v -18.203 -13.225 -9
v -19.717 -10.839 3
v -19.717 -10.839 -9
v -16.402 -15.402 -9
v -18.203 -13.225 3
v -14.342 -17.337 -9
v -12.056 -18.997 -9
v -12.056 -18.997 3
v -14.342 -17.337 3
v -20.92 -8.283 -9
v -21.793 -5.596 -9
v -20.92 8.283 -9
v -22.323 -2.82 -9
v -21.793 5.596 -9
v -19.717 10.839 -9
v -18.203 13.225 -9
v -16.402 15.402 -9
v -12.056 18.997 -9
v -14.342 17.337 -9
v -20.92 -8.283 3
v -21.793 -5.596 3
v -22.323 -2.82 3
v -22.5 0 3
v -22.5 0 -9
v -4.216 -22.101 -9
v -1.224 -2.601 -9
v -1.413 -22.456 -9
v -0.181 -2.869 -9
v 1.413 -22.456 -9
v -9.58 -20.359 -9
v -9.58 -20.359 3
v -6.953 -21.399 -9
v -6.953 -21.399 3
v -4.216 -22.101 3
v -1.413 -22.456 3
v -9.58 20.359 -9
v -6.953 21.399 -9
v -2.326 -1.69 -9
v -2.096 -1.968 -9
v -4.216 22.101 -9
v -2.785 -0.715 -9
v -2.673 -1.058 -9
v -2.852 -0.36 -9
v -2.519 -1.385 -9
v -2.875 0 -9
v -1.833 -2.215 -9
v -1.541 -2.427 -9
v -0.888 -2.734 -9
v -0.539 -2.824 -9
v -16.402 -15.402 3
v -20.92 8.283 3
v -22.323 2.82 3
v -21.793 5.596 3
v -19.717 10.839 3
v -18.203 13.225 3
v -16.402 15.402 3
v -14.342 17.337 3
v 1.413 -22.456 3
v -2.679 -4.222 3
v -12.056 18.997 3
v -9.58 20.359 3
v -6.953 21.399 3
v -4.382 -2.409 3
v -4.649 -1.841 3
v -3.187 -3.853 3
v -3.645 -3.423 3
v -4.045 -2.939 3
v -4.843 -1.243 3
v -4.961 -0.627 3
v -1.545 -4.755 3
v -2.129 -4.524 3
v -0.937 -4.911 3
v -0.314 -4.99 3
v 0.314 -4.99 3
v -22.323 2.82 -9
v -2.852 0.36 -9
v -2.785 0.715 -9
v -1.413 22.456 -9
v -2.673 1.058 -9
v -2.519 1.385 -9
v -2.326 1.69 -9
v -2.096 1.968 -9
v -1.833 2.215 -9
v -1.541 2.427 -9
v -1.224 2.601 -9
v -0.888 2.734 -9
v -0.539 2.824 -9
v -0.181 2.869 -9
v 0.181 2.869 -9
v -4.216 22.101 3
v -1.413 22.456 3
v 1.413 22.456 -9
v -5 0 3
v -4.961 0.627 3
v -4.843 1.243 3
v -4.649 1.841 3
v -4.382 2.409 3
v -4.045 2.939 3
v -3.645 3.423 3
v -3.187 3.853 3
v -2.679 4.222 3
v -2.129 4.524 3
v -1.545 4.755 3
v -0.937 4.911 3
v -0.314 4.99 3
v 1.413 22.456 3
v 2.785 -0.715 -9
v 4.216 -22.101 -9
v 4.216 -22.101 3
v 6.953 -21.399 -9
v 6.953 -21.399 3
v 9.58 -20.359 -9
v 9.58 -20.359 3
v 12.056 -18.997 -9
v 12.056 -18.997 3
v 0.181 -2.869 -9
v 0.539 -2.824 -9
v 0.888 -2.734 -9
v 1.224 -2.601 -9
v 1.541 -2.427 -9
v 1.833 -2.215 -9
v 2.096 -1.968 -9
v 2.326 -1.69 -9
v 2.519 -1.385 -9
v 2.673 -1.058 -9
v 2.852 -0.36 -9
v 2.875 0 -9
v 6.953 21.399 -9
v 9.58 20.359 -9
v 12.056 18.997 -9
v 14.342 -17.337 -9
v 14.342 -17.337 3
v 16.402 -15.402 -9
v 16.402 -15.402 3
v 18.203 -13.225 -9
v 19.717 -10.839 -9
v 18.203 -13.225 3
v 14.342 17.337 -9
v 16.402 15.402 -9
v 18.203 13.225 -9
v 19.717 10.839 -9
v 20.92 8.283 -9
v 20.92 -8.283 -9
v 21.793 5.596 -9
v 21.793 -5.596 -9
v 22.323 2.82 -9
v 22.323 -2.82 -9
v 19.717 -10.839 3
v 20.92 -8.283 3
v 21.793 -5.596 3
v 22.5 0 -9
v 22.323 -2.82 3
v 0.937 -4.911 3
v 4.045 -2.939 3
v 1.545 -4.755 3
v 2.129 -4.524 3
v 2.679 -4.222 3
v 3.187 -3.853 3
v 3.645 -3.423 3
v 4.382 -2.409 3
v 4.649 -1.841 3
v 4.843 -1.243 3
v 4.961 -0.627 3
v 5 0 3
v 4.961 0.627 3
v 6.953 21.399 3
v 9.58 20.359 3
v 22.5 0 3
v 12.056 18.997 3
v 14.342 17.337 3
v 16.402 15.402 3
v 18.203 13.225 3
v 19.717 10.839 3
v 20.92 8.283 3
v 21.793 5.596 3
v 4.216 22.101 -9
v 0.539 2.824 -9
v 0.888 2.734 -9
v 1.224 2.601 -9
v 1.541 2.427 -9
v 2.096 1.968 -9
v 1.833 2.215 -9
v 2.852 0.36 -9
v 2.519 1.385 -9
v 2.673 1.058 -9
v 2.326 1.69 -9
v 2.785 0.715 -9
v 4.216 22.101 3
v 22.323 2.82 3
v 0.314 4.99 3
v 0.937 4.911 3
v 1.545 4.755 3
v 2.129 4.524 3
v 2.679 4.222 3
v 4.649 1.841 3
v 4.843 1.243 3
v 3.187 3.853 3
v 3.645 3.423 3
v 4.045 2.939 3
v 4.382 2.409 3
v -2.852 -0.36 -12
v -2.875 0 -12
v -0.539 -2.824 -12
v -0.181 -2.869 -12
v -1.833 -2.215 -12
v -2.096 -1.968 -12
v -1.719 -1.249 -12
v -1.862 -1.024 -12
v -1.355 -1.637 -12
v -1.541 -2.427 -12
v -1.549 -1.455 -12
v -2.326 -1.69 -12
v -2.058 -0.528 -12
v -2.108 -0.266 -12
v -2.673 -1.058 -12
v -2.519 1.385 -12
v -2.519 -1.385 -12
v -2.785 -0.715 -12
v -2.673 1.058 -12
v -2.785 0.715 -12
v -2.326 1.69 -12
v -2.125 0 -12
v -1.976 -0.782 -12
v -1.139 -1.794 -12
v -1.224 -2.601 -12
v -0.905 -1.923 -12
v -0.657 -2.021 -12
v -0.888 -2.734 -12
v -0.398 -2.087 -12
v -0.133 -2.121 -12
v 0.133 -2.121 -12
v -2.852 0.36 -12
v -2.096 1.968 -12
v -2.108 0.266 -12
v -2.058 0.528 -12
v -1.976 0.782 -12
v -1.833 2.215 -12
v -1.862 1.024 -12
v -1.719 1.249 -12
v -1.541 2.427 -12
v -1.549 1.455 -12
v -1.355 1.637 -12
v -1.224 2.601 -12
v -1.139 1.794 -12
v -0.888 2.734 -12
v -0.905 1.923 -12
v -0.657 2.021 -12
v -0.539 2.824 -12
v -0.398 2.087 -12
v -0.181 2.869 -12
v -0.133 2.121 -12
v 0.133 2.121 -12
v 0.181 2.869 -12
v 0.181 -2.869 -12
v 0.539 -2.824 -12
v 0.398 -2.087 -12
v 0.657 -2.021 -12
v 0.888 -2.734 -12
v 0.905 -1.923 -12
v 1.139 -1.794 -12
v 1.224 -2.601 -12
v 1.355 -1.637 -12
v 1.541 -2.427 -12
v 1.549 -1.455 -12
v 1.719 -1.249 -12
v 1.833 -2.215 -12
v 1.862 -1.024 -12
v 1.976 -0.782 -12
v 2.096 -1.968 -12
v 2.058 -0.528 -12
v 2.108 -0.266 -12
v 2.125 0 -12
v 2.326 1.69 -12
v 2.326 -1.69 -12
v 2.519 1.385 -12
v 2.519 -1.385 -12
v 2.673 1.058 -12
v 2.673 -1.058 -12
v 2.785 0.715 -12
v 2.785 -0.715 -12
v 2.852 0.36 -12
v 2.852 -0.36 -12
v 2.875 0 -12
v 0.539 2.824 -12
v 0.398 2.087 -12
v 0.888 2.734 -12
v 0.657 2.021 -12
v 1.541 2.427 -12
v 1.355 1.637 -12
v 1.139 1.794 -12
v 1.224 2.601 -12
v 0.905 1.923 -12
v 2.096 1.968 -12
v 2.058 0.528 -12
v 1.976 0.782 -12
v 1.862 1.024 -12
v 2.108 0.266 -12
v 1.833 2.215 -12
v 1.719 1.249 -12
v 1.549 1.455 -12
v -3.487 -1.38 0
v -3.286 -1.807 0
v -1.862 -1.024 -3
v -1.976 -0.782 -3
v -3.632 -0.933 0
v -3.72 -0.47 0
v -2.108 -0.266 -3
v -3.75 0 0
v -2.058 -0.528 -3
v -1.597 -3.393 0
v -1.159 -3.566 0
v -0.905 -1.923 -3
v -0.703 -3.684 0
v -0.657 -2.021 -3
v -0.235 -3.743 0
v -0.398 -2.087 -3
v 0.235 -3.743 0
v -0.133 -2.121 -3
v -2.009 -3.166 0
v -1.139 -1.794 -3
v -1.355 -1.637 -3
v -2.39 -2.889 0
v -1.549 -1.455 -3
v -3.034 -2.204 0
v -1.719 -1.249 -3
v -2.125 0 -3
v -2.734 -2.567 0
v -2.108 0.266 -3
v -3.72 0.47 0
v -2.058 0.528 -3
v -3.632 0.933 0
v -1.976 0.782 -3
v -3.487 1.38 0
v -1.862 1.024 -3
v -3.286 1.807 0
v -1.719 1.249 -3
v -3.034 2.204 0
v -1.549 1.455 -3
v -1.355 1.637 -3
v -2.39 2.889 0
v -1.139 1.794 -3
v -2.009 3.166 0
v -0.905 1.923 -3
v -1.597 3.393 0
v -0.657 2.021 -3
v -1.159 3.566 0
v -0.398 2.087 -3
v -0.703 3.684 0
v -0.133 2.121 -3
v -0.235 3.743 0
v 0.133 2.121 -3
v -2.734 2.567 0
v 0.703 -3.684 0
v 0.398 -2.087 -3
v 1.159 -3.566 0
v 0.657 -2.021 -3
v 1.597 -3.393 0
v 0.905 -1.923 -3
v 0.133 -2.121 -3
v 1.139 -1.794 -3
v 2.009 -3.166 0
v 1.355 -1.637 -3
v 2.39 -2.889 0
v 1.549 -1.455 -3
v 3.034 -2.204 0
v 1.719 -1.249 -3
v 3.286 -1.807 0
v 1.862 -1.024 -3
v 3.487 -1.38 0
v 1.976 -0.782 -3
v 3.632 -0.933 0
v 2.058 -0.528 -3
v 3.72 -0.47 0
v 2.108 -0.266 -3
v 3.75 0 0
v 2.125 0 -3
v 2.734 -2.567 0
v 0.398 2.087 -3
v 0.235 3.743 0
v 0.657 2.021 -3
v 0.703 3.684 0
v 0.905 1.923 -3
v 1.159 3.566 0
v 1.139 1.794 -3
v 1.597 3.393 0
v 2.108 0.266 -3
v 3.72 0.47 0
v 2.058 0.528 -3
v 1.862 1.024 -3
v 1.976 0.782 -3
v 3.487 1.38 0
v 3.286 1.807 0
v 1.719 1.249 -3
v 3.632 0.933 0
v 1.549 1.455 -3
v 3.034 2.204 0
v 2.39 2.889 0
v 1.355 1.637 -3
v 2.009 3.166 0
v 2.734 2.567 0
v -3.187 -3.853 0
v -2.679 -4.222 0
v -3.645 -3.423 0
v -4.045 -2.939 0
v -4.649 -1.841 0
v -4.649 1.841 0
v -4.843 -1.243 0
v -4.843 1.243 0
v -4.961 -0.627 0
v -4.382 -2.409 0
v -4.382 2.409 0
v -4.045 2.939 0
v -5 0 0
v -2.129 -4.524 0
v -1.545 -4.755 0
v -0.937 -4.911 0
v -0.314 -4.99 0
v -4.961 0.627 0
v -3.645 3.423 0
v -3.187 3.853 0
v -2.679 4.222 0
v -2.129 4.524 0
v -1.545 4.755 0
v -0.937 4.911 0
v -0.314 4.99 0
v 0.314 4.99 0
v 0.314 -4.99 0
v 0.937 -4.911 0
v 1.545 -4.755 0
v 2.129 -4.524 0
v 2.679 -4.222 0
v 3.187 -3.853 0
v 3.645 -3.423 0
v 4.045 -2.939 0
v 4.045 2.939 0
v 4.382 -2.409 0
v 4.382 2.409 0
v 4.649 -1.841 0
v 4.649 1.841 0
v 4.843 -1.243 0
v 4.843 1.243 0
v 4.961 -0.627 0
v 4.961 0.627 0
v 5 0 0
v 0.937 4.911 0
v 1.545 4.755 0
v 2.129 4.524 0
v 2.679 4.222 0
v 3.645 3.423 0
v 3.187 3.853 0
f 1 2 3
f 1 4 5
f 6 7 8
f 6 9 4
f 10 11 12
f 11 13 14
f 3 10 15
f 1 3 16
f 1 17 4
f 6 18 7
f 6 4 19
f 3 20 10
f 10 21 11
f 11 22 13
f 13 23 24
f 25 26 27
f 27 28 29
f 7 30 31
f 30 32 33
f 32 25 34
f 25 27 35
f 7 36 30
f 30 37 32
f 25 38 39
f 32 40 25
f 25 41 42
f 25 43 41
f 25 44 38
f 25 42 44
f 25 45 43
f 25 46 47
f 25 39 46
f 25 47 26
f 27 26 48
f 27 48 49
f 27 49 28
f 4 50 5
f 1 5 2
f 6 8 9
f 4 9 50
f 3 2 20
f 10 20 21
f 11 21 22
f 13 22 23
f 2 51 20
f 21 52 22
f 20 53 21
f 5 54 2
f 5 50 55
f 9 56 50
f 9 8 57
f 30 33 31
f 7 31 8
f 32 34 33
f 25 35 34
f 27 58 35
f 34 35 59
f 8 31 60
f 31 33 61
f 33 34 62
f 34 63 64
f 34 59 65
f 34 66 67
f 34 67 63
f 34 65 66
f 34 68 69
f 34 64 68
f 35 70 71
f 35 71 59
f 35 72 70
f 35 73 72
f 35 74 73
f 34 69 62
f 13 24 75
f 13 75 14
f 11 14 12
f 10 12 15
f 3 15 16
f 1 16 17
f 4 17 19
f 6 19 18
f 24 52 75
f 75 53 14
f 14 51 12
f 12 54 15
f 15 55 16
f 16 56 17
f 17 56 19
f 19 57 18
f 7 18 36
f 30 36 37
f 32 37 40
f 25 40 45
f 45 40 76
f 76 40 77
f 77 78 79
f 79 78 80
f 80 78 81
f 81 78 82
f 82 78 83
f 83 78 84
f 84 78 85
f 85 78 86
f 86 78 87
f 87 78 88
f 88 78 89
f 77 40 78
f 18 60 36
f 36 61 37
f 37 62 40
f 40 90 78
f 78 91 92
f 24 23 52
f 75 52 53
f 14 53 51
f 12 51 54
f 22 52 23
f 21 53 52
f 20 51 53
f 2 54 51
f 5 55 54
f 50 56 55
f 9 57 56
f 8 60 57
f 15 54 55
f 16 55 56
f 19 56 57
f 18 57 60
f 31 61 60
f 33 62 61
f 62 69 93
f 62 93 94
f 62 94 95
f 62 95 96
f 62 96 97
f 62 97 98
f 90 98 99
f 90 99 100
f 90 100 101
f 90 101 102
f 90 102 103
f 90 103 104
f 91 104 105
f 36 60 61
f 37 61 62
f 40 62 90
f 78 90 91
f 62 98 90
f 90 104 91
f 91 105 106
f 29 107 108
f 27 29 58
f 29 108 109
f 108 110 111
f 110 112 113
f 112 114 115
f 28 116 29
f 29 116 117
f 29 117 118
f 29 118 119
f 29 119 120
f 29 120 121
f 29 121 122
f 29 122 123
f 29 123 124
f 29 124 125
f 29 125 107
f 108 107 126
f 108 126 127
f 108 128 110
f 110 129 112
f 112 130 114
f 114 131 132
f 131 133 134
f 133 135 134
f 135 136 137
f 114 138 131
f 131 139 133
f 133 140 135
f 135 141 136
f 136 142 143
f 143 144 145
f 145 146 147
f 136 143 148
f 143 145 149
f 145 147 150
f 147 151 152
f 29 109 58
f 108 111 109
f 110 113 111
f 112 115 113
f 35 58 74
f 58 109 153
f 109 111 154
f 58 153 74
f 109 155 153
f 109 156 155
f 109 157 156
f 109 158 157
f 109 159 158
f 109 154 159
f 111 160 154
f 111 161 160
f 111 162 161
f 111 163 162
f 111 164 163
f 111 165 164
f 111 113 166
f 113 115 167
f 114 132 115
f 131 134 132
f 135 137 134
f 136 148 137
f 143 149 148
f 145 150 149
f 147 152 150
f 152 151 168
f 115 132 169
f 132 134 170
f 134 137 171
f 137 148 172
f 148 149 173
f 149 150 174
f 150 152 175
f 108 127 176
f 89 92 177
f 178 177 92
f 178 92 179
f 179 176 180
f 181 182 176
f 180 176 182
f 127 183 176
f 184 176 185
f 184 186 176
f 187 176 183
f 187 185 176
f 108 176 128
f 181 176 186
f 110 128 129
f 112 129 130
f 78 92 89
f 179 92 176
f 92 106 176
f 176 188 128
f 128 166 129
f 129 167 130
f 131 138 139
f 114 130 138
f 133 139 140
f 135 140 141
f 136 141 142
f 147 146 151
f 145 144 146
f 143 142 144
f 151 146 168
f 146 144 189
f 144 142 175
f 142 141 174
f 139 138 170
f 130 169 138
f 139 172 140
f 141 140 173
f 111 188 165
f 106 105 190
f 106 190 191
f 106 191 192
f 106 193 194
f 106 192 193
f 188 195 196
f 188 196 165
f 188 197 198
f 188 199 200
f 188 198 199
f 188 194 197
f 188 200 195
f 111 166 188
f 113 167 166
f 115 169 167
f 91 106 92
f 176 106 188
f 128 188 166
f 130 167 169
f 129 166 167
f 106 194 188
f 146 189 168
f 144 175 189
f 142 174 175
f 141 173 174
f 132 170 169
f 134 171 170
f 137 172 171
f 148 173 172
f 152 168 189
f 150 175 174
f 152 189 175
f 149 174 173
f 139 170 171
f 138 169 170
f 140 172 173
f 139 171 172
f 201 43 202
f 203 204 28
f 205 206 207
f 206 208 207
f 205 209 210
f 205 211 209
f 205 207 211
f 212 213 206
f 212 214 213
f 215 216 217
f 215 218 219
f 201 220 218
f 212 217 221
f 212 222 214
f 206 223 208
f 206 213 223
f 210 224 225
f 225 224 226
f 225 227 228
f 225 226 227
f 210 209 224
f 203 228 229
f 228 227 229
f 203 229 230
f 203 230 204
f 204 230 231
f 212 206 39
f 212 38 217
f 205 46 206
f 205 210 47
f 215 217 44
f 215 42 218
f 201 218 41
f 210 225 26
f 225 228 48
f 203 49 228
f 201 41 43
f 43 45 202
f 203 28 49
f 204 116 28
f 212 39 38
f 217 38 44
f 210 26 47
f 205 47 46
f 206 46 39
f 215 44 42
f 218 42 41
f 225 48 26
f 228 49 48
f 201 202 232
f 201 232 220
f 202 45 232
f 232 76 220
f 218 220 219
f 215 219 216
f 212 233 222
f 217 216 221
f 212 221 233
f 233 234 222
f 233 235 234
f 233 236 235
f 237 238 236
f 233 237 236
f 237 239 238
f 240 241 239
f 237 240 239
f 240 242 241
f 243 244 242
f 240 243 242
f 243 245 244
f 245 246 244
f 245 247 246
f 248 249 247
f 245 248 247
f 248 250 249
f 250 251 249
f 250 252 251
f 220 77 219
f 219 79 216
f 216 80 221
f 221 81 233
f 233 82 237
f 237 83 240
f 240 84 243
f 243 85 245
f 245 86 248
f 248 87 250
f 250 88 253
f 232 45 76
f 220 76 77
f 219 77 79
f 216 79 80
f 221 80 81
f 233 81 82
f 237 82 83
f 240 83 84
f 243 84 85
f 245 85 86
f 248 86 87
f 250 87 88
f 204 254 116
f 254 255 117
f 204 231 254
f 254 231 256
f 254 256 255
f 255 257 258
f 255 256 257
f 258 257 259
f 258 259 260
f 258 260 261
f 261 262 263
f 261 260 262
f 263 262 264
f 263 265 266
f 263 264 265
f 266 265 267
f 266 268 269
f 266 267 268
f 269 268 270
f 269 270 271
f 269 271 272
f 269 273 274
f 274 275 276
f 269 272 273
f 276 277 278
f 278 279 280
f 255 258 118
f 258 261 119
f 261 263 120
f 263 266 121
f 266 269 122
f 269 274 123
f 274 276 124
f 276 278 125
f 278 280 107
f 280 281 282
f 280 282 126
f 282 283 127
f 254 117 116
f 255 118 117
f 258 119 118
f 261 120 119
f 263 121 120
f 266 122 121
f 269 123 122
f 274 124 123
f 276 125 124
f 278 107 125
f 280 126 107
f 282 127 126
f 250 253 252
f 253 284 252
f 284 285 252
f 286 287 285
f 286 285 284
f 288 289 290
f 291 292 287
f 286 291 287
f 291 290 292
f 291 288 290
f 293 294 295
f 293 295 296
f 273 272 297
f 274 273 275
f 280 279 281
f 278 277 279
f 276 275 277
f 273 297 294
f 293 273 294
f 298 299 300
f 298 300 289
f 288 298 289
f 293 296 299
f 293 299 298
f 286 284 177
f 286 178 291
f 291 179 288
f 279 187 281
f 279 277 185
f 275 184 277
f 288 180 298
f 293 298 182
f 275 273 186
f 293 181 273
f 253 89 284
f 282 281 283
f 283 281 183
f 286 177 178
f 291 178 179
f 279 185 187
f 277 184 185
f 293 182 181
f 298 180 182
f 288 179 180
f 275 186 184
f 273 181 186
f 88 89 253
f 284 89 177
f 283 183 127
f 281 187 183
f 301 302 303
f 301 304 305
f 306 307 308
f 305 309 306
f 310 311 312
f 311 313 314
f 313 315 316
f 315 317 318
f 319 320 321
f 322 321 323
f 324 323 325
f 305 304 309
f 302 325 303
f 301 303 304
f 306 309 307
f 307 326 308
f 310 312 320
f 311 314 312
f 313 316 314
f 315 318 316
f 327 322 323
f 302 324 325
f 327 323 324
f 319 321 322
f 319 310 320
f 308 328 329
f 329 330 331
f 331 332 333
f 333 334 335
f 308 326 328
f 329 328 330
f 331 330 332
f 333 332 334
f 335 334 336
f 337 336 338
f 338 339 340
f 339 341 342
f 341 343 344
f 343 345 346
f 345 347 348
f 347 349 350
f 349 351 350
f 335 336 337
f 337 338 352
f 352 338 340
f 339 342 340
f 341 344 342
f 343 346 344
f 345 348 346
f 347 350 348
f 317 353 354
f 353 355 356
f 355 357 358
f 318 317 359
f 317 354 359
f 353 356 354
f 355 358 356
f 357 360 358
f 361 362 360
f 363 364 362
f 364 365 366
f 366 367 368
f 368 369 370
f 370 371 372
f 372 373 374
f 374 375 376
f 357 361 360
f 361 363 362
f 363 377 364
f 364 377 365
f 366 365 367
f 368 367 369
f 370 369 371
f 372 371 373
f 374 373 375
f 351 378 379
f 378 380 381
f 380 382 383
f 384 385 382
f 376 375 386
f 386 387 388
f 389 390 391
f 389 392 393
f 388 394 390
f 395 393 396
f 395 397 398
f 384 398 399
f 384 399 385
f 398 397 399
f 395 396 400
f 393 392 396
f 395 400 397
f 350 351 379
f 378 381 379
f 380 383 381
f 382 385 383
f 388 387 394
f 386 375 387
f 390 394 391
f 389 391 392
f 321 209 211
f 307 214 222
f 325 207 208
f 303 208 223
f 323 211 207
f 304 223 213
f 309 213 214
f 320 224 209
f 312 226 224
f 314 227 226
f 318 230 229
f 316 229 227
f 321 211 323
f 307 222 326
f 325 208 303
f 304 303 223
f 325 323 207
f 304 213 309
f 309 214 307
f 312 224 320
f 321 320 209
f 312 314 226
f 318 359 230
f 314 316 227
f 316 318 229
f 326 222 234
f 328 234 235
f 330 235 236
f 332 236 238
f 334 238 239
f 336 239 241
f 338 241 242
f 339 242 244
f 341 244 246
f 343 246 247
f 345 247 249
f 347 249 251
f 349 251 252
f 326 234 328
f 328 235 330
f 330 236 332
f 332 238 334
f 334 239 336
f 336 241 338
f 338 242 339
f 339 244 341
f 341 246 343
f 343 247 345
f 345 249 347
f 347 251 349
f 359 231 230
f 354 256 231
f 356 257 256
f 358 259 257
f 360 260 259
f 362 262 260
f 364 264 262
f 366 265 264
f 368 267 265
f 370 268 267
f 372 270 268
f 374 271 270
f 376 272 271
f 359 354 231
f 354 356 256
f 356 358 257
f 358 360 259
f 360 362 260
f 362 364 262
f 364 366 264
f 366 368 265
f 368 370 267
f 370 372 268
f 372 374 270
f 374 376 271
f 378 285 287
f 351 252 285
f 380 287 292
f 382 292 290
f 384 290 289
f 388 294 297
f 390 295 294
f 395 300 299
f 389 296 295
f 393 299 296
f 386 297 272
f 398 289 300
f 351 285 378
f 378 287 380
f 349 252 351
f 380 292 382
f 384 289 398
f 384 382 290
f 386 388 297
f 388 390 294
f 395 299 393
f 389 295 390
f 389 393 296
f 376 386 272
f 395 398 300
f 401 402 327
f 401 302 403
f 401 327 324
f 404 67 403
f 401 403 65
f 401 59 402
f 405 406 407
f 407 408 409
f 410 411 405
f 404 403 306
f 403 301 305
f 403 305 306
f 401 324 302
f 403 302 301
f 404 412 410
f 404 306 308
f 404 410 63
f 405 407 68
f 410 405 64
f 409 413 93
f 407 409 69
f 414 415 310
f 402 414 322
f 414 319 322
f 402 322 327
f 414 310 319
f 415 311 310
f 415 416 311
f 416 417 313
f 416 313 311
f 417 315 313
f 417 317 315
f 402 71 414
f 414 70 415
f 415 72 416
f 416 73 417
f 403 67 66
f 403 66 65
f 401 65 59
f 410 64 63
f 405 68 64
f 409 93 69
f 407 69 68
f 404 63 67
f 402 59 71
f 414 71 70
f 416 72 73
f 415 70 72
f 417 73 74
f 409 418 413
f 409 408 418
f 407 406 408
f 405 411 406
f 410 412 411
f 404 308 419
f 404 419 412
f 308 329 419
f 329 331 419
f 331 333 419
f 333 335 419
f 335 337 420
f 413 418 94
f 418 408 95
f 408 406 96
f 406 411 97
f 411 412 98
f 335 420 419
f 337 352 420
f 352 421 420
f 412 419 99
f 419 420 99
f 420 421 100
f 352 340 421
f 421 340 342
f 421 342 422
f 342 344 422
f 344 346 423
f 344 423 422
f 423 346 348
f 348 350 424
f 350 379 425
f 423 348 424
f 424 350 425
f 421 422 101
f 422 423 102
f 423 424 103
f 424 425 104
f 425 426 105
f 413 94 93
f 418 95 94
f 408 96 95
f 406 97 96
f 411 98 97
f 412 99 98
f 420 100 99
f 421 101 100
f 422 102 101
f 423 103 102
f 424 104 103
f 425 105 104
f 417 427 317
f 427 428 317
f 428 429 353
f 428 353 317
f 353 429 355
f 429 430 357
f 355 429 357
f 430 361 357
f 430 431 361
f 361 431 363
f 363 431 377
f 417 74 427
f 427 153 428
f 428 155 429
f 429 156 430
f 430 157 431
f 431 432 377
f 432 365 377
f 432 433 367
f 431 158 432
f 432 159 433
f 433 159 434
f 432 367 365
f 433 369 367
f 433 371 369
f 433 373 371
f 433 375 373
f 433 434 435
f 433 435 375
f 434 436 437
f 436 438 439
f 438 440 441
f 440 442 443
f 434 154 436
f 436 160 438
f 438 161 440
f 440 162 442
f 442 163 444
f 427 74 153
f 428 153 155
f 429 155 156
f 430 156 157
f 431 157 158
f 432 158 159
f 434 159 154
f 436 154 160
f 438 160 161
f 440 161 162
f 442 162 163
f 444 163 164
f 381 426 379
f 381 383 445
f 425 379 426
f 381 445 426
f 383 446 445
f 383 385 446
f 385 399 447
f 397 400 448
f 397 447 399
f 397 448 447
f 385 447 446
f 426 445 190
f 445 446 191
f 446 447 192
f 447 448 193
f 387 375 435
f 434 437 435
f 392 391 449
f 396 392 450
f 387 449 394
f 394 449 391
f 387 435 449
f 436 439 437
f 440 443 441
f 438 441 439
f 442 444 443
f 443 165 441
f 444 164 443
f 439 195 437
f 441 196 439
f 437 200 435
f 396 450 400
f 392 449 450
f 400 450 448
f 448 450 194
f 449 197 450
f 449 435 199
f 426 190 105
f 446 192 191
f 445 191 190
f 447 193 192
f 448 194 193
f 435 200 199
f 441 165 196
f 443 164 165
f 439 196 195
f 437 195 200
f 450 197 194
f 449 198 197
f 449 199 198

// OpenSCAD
$fn = 50;

difference() {
	union() {
		translate(v = [0, 0, -9.0]) {
			cylinder(h = 12, r = 22.5);
		}
		#translate(v = [0, 0, -12.0]) {
			cylinder(h = 12, r = 2.875);
		}
	}
	union() {
		translate(v = [0, 0, 0]) {
			rotate(a = [0, 0, 0]) {
				difference() {
					union() {
						translate(v = [0, 0, -12.0]) {
							cylinder(h = 12, r = 2.0);
						}
						translate(v = [0, 0, -3]) {
							cylinder(h = 3, r1 = 2.125, r2 = 3.75);
						}
						translate(v = [0, 0, -12.0]) {
							cylinder(h = 12, r = 2.125);
						}
						translate(v = [0, 0, -12.0]) {
							cylinder(h = 12, r = 2.0);
						}
					}
					union();
				}
			}
		}
		#cylinder(h = 3, r = 5.0);
	}
}
